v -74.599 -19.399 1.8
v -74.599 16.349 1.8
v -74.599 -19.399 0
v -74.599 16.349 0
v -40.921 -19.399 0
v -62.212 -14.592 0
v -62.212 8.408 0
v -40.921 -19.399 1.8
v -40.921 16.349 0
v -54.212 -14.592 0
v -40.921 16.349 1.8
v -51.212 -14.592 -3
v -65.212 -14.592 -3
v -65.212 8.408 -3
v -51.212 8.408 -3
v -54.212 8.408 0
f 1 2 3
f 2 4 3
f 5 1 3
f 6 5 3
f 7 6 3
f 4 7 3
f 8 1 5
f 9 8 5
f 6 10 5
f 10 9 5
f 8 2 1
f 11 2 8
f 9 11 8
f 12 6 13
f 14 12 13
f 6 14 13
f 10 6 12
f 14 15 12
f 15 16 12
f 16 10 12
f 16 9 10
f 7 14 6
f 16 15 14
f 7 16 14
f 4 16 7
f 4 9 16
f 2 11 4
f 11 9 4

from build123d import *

# Parameters (mm, degrees)
CROQUIS1_W              = 65.5
CROQUIS1_H              = 74
SALIENTE_EXTRUIR1_DEPTH = 1.8
CROQUIS2_W              = 5
CROQUIS2_H              = 74
SALIENTE_EXTRUIR2_DEPTH = 15
CROQUIS3_W              = 3.4
CROQUIS3_H              = 2.1
CORTAR_EXTRUIR1_DEPTH   = 74
SALIENTE_EXTRUIR4_DEPTH = 1.8
CROQUIS7_W              = 14
CROQUIS7_H              = 23
SALIENTE_EXTRUIR5_DEPTH = 3
CORTAR_EXTRUIR5_DEPTH   = 23
CROQUIS10_R             = 1
CORTAR_EXTRUIR6_DEPTH   = 8
CORTAR_EXTRUIR7_START   = -8
CROQUIS11_R             = 1
CORTAR_EXTRUIR7_DEPTH   = 8
CORTAR_EXTRUIR8_START   = -19.8
CROQUIS12_W             = 72.040317055
CROQUIS12_H             = 80.937811448
CROQUIS12_W_2           = 33.677278507
CROQUIS12_H_2           = 35.747817065
CORTAR_EXTRUIR8_DEPTH   = 16.8


with BuildPart() as part:
    # Croquis1 → Saliente-Extruir1 (new body)
    with BuildSketch(Plane.XY):
        with Locations((-58.211538462, -2.192307692)):
            Rectangle(CROQUIS1_W, CROQUIS1_H)
    extrude(amount=SALIENTE_EXTRUIR1_DEPTH)

    # Croquis2 → Saliente-Extruir2 (add)
    with BuildSketch(Plane.XY.offset(1.8)):
        with Locations((-88.461538462, -2.192307692)):
            Rectangle(CROQUIS2_W, CROQUIS2_H)
        with Locations((-27.961538462, -2.192307692)):
            Rectangle(CROQUIS2_W, CROQUIS2_H)
    extrude(amount=SALIENTE_EXTRUIR2_DEPTH)

    # Croquis3 → Cortar-Extruir1 (cut)
    with BuildSketch(Plane.XZ.offset(39.192307692)):
        Polygon((-88.461538462, 16.8), (-89.111538462, 16.8), (-89.111538462, 15.9), (-87.811538462, 15.9), (-87.811538462, 16.8), align=None)
        with Locations((-87.661538462, 13.95)):
            Rectangle(CROQUIS3_W, CROQUIS3_H)
        with Locations((-28.761538462, 13.95)):
            Rectangle(CROQUIS3_W, CROQUIS3_H)
        Polygon((-28.611538462, 16.8), (-27.961538462, 16.8), (-27.311538462, 16.8), (-27.311538462, 15.9), (-28.611538462, 15.9), align=None)
    extrude(amount=-CORTAR_EXTRUIR1_DEPTH, mode=Mode.SUBTRACT)

    # Croquis6 → Saliente-Extruir4 (add)
    with BuildSketch(Plane.XZ.offset(39.192307692)):
        Polygon((-85.961538462, 8.7), (-80.961538462, 8.7), (-80.961538462, 1.8), (-45.461538462, 1.8), (-45.461538462, 5.7), (-30.461538462, 5.7), (-25.461538462, 5.7), (-25.461538462, 0), (-90.961538462, 0), (-90.961538462, 8.7), align=None)
    extrude(amount=SALIENTE_EXTRUIR4_DEPTH)

    # Croquis7 → Saliente-Extruir5 (add)
    with BuildSketch(Plane(origin=(0, 0, 0), x_dir=(-1, 0, 0), z_dir=(0, 0, -1))):
        with Locations((58.211538462, -3.092307692)):
            Rectangle(CROQUIS7_W, CROQUIS7_H)
    extrude(amount=SALIENTE_EXTRUIR5_DEPTH)

    # Croquis9 → Cortar-Extruir5 (cut)
    with BuildSketch(Plane.XZ.offset(14.592307692)):
        Polygon((-51.211538462, -3), (-54.211538462, 0), (-51.211538462, 0), align=None)
        Polygon((-65.211538462, -3), (-62.211538462, 0), (-65.211538462, 0), align=None)
    extrude(amount=-CORTAR_EXTRUIR5_DEPTH, mode=Mode.SUBTRACT)

    # Croquis10 → Cortar-Extruir6 (cut)
    with BuildSketch(Plane.XZ.offset(39.192307692)):
        with Locations(Location((-87.661538462, 10.9, 0), (0, 0, 270))):
            Circle(CROQUIS10_R)
        with Locations(Location((-28.761538462, 10.9, 0), (0, 0, 270))):
            Circle(CROQUIS10_R)
    extrude(amount=-CORTAR_EXTRUIR6_DEPTH, mode=Mode.SUBTRACT)

    # Croquis11 → Cortar-Extruir7 (cut)
    with BuildSketch(Plane(origin=(0, 34.807692308, 0), x_dir=(1, 0, 0), z_dir=(0, 1, 0)).offset(CORTAR_EXTRUIR7_START)):
        with Locations(Location((-28.761538462, -10.9, 0), (0, 0, 90))):
            Circle(CROQUIS11_R)
        with Locations(Location((-87.661538462, -10.9, 0), (0, 0, 90))):
            Circle(CROQUIS11_R)
    extrude(amount=CORTAR_EXTRUIR7_DEPTH, mode=Mode.SUBTRACT)

    # Croquis12 → Cortar-Extruir8 (cut)
    with BuildSketch(Plane(origin=(0, 0, -3), x_dir=(-1, 0, 0), z_dir=(0, 0, -1)).offset(CORTAR_EXTRUIR8_START)):
        with Locations((57.367684443, -4.300620435)):
            Rectangle(CROQUIS12_W, CROQUIS12_H)
        with Locations((57.760041523, -1.524971817)):
            Rectangle(CROQUIS12_W_2, CROQUIS12_H_2, mode=Mode.SUBTRACT)
    extrude(amount=CORTAR_EXTRUIR8_DEPTH, mode=Mode.SUBTRACT)


solid = part.part
